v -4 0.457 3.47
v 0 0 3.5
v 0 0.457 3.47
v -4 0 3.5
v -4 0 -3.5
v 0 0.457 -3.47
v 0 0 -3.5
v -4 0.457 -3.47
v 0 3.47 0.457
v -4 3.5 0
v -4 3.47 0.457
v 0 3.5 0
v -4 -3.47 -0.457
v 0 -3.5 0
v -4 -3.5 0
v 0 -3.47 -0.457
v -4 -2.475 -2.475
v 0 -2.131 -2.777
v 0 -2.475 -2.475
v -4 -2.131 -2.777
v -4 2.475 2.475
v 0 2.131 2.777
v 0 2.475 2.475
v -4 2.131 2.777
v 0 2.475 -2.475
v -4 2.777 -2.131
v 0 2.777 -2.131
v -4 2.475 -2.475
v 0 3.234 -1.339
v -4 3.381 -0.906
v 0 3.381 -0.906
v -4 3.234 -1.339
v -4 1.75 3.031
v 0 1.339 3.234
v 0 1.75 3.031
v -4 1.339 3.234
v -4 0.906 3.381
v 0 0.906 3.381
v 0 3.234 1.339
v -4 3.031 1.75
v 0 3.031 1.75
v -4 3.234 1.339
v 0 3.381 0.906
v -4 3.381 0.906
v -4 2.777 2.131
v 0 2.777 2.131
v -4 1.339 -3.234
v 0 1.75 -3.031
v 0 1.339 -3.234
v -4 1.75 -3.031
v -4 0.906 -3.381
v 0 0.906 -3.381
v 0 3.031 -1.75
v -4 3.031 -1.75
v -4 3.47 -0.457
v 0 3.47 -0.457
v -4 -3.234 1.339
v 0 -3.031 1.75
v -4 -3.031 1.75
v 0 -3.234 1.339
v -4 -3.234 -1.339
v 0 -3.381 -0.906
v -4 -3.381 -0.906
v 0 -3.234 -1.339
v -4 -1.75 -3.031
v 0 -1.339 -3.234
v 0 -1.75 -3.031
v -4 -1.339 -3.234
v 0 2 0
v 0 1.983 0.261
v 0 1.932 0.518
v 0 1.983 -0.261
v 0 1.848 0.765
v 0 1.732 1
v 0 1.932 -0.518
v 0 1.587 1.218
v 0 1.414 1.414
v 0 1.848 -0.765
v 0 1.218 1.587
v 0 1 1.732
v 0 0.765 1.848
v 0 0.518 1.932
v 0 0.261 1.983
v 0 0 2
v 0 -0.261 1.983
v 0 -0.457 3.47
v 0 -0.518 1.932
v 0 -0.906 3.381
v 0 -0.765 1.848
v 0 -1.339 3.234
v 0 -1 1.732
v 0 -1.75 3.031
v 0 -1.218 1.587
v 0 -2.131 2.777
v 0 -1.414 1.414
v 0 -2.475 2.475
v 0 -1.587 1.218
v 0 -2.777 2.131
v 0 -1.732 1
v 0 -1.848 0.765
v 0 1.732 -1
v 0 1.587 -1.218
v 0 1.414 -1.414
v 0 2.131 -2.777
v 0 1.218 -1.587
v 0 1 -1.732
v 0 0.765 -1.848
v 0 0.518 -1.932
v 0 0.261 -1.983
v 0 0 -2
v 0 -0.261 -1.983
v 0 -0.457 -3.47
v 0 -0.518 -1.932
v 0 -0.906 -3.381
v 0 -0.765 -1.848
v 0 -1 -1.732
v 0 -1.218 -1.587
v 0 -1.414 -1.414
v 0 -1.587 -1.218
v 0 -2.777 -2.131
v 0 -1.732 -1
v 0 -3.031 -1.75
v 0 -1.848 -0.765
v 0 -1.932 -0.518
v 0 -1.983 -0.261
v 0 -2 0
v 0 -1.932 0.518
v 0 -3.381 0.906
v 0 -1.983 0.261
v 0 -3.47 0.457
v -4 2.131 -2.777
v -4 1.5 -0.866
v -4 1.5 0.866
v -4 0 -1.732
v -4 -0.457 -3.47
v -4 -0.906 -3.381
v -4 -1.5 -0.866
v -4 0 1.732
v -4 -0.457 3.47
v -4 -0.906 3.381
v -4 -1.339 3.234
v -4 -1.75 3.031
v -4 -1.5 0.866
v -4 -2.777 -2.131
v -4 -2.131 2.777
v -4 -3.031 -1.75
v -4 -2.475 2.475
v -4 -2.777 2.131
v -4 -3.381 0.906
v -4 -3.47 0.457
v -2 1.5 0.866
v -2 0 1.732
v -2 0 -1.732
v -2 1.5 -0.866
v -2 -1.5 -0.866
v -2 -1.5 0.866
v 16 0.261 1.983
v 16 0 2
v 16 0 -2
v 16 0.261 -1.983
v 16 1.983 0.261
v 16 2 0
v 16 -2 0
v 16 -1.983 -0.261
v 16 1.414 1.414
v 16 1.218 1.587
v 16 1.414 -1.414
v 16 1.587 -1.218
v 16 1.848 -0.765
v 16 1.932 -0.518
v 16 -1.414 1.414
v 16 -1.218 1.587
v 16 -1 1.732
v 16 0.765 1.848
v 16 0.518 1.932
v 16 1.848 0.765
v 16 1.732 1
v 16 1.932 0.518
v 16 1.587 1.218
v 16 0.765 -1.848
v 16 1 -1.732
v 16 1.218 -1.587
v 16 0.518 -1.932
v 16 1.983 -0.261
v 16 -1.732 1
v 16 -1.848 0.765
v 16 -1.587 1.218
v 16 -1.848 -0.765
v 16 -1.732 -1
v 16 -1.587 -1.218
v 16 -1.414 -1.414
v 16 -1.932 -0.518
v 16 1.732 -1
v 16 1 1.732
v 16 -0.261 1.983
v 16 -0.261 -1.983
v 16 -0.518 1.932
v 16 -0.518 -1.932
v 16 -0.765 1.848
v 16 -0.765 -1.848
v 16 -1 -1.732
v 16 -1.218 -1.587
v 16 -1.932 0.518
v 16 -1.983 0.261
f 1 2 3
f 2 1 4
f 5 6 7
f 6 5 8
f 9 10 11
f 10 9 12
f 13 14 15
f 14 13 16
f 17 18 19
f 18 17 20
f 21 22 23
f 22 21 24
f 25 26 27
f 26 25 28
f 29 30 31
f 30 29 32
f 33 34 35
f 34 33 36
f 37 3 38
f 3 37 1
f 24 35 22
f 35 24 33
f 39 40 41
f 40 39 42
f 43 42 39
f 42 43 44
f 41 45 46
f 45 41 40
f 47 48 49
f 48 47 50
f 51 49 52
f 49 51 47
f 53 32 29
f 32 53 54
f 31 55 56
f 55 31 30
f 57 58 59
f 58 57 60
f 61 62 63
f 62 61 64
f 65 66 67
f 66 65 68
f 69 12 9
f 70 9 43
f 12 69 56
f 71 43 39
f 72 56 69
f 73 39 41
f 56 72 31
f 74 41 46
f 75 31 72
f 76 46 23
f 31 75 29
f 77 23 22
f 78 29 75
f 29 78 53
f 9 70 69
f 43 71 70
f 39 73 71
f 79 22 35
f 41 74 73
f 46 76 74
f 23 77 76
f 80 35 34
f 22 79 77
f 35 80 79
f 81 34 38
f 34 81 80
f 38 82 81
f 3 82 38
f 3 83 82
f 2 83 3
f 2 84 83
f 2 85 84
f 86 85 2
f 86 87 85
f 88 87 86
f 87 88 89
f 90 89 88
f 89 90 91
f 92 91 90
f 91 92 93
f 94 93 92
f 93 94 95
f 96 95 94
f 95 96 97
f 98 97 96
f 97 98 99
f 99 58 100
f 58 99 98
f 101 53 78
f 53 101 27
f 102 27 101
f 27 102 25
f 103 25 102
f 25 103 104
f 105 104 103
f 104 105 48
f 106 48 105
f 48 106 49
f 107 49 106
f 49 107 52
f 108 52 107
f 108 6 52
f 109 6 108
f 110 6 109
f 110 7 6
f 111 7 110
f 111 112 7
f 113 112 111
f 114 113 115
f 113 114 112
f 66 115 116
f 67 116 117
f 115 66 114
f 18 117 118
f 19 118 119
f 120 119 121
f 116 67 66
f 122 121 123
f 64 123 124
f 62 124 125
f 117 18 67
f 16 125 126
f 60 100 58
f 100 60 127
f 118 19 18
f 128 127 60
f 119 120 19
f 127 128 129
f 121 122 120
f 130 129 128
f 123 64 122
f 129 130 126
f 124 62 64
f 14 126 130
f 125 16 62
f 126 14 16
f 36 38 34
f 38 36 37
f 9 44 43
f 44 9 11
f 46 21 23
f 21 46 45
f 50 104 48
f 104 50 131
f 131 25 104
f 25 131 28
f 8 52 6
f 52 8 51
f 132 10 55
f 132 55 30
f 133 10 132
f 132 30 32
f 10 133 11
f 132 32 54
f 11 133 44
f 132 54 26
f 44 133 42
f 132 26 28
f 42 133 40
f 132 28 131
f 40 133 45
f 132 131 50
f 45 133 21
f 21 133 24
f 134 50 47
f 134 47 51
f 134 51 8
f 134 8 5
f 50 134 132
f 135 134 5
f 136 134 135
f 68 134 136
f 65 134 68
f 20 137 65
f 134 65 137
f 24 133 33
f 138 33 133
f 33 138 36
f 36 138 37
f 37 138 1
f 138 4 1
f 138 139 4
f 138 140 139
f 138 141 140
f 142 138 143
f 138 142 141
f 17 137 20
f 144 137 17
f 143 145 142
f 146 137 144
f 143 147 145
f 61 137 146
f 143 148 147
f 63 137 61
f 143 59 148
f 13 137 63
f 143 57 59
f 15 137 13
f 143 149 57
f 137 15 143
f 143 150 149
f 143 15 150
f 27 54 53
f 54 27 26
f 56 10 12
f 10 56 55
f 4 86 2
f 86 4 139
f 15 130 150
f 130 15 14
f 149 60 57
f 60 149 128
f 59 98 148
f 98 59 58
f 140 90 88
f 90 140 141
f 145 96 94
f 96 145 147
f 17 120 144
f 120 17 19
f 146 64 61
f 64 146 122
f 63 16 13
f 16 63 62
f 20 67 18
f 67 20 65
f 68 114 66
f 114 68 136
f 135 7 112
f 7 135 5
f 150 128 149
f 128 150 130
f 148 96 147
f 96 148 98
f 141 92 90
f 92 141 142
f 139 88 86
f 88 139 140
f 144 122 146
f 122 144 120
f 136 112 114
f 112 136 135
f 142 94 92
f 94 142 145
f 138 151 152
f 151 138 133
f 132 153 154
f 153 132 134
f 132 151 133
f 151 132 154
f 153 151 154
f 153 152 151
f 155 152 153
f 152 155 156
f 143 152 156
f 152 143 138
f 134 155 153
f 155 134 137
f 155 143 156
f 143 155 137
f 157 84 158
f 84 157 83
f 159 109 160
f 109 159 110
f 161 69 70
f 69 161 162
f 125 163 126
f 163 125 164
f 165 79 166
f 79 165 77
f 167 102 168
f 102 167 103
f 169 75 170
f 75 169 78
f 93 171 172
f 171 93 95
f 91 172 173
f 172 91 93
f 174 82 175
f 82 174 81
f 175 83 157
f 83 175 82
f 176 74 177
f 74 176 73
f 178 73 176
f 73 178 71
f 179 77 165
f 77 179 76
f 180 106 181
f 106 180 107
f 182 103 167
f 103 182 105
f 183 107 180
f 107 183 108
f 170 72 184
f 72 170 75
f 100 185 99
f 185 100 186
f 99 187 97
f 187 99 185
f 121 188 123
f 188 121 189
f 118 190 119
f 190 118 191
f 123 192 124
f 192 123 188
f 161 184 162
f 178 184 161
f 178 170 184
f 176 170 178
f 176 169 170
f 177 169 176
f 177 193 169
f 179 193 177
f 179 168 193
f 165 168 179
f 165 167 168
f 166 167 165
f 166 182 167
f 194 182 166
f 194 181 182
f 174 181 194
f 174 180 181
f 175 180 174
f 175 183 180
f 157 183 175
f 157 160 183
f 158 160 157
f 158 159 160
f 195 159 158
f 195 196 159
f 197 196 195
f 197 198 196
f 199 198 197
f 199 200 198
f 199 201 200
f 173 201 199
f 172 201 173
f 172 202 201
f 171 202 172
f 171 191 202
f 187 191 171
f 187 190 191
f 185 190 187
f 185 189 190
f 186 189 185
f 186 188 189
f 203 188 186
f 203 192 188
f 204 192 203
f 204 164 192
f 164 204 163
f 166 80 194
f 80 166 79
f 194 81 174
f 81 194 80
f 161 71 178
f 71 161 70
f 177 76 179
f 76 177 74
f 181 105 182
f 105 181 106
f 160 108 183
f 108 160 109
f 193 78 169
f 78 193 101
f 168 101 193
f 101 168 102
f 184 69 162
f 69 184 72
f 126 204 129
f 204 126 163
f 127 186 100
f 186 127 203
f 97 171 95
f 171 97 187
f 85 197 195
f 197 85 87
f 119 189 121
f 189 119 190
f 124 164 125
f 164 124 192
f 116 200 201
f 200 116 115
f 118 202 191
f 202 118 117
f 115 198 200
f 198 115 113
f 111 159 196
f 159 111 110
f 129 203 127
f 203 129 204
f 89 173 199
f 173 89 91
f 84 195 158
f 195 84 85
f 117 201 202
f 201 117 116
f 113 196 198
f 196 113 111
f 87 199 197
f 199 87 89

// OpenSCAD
// file: ../../lib/nutsnbolts/data-access.scad
// Norm Nuts and Bolts - a OpenSCAD library
// Copyright (C) 2012  Johannes Kneer

// This program is free software: you can redistribute it and/or modify
// it under the terms of the GNU General Public License as published by
// the Free Software Foundation, either version 3 of the License, or
// (at your option) any later version.

// This program is distributed in the hope that it will be useful,
// but WITHOUT ANY WARRANTY; without even the implied warranty of
// MERCHANTABILITY or FITNESS FOR A PARTICULAR PURPOSE.  See the
// GNU General Public License for more details.

// You should have received a copy of the GNU General Public License
// along with this program.  If not, see <http://www.gnu.org/licenses/>.


// DATABASE ACCESS FUNCTIONS AND CONSTANTS



// == CONSTANTS ==

// screw table access keys
_NB_S_DESC            = 0;
_NB_S_FAMKEY			    = 1;
_NB_S_LENGTH          = 2;
_NB_S_NOTHREAD_LENGTH = 3;

_NB_F_DESC			      = 0;
_NB_F_OUTER_DIA       = 1;
_NB_F_INNER_DIA       = 2;
_NB_F_LEAD            = 3;
_NB_F_KEY             = 4;
_NB_F_KEY_DEPTH       = 5;
_NB_F_HEAD_HEIGHT     = 6;
_NB_F_HEAD_DIA        = 7;
_NB_F_NUT_KEY         = 8;
_NB_F_NUT_HEIGHT      = 9;
_NB_F_PITCH_FINE      = 10;
_NB_F_PITCH_MEDIUM    = 11;
_NB_F_PITCH_COARSE    = 12;


// == FUNCTIONS ==

// _get_screw("descriptor")   with descriptor = M8x25
//   find the line for a general object in the data matrix

function _get_screw(n) = data_screw[search([n], data_screw)[0]];
function _get_screw_fam(n) = data_screw_fam[search([_get_screw(n)[_NB_S_FAMKEY]], data_screw_fam)[0]];

function _get_fam(n) = data_screw_fam[search([n], data_screw_fam)[0]];


// _get_XXXXX("descriptor") functions
// find a single property in the database

function _get_desc(n)        = _get_screw(n)[_NB_S_DESC];
function _get_famkey(n)         = _get_screw(n)[_NB_S_FAMKEY];
function _get_length(n)      = _get_screw(n)[_NB_S_LENGTH];
function _get_nt_length(n)   = _get_screw(n)[_NB_S_NOTHREAD_LENGTH];

function _get_outer_dia(n)   = _get_screw_fam(n)[_NB_F_OUTER_DIA];
function _get_inner_dia(n)   = _get_screw_fam(n)[_NB_F_INNER_DIA];
function _get_lead(n)        = _get_screw_fam(n)[_NB_F_LEAD];
function _get_head_height(n) = _get_screw_fam(n)[_NB_F_HEAD_HEIGHT];
function _get_head_dia(n)    = _get_screw_fam(n)[_NB_F_HEAD_DIA];
function _get_nut_key(n)     = _get_screw_fam(n)[_NB_F_NUT_KEY];
function _get_nut_height(n)  = _get_screw_fam(n)[_NB_F_NUT_HEIGHT];
function _get_fine_pitch(n)  = _get_screw_fam(n)[_NB_F_PITCH_FINE];
function _get_medium_pitch(n)  = _get_screw_fam(n)[_NB_F_PITCH_MEDIUM];
function _get_coarse_pitch(n)  = _get_screw_fam(n)[_NB_F_PITCH_COARSE];
// main file
/**********************************************************************************************************************
 **
 ** parts/vitamins/screw_M4x16.scad
 **
 ** This file renders a screw of the dimensions specified by the file name.
 **
 **********************************************************************************************************************/

include <../../lib/nutsnbolts/cyl_head_bolt.scad>;

$fn = 48;
rotate([0, -90, 0])
	screw("M4x16"); 
